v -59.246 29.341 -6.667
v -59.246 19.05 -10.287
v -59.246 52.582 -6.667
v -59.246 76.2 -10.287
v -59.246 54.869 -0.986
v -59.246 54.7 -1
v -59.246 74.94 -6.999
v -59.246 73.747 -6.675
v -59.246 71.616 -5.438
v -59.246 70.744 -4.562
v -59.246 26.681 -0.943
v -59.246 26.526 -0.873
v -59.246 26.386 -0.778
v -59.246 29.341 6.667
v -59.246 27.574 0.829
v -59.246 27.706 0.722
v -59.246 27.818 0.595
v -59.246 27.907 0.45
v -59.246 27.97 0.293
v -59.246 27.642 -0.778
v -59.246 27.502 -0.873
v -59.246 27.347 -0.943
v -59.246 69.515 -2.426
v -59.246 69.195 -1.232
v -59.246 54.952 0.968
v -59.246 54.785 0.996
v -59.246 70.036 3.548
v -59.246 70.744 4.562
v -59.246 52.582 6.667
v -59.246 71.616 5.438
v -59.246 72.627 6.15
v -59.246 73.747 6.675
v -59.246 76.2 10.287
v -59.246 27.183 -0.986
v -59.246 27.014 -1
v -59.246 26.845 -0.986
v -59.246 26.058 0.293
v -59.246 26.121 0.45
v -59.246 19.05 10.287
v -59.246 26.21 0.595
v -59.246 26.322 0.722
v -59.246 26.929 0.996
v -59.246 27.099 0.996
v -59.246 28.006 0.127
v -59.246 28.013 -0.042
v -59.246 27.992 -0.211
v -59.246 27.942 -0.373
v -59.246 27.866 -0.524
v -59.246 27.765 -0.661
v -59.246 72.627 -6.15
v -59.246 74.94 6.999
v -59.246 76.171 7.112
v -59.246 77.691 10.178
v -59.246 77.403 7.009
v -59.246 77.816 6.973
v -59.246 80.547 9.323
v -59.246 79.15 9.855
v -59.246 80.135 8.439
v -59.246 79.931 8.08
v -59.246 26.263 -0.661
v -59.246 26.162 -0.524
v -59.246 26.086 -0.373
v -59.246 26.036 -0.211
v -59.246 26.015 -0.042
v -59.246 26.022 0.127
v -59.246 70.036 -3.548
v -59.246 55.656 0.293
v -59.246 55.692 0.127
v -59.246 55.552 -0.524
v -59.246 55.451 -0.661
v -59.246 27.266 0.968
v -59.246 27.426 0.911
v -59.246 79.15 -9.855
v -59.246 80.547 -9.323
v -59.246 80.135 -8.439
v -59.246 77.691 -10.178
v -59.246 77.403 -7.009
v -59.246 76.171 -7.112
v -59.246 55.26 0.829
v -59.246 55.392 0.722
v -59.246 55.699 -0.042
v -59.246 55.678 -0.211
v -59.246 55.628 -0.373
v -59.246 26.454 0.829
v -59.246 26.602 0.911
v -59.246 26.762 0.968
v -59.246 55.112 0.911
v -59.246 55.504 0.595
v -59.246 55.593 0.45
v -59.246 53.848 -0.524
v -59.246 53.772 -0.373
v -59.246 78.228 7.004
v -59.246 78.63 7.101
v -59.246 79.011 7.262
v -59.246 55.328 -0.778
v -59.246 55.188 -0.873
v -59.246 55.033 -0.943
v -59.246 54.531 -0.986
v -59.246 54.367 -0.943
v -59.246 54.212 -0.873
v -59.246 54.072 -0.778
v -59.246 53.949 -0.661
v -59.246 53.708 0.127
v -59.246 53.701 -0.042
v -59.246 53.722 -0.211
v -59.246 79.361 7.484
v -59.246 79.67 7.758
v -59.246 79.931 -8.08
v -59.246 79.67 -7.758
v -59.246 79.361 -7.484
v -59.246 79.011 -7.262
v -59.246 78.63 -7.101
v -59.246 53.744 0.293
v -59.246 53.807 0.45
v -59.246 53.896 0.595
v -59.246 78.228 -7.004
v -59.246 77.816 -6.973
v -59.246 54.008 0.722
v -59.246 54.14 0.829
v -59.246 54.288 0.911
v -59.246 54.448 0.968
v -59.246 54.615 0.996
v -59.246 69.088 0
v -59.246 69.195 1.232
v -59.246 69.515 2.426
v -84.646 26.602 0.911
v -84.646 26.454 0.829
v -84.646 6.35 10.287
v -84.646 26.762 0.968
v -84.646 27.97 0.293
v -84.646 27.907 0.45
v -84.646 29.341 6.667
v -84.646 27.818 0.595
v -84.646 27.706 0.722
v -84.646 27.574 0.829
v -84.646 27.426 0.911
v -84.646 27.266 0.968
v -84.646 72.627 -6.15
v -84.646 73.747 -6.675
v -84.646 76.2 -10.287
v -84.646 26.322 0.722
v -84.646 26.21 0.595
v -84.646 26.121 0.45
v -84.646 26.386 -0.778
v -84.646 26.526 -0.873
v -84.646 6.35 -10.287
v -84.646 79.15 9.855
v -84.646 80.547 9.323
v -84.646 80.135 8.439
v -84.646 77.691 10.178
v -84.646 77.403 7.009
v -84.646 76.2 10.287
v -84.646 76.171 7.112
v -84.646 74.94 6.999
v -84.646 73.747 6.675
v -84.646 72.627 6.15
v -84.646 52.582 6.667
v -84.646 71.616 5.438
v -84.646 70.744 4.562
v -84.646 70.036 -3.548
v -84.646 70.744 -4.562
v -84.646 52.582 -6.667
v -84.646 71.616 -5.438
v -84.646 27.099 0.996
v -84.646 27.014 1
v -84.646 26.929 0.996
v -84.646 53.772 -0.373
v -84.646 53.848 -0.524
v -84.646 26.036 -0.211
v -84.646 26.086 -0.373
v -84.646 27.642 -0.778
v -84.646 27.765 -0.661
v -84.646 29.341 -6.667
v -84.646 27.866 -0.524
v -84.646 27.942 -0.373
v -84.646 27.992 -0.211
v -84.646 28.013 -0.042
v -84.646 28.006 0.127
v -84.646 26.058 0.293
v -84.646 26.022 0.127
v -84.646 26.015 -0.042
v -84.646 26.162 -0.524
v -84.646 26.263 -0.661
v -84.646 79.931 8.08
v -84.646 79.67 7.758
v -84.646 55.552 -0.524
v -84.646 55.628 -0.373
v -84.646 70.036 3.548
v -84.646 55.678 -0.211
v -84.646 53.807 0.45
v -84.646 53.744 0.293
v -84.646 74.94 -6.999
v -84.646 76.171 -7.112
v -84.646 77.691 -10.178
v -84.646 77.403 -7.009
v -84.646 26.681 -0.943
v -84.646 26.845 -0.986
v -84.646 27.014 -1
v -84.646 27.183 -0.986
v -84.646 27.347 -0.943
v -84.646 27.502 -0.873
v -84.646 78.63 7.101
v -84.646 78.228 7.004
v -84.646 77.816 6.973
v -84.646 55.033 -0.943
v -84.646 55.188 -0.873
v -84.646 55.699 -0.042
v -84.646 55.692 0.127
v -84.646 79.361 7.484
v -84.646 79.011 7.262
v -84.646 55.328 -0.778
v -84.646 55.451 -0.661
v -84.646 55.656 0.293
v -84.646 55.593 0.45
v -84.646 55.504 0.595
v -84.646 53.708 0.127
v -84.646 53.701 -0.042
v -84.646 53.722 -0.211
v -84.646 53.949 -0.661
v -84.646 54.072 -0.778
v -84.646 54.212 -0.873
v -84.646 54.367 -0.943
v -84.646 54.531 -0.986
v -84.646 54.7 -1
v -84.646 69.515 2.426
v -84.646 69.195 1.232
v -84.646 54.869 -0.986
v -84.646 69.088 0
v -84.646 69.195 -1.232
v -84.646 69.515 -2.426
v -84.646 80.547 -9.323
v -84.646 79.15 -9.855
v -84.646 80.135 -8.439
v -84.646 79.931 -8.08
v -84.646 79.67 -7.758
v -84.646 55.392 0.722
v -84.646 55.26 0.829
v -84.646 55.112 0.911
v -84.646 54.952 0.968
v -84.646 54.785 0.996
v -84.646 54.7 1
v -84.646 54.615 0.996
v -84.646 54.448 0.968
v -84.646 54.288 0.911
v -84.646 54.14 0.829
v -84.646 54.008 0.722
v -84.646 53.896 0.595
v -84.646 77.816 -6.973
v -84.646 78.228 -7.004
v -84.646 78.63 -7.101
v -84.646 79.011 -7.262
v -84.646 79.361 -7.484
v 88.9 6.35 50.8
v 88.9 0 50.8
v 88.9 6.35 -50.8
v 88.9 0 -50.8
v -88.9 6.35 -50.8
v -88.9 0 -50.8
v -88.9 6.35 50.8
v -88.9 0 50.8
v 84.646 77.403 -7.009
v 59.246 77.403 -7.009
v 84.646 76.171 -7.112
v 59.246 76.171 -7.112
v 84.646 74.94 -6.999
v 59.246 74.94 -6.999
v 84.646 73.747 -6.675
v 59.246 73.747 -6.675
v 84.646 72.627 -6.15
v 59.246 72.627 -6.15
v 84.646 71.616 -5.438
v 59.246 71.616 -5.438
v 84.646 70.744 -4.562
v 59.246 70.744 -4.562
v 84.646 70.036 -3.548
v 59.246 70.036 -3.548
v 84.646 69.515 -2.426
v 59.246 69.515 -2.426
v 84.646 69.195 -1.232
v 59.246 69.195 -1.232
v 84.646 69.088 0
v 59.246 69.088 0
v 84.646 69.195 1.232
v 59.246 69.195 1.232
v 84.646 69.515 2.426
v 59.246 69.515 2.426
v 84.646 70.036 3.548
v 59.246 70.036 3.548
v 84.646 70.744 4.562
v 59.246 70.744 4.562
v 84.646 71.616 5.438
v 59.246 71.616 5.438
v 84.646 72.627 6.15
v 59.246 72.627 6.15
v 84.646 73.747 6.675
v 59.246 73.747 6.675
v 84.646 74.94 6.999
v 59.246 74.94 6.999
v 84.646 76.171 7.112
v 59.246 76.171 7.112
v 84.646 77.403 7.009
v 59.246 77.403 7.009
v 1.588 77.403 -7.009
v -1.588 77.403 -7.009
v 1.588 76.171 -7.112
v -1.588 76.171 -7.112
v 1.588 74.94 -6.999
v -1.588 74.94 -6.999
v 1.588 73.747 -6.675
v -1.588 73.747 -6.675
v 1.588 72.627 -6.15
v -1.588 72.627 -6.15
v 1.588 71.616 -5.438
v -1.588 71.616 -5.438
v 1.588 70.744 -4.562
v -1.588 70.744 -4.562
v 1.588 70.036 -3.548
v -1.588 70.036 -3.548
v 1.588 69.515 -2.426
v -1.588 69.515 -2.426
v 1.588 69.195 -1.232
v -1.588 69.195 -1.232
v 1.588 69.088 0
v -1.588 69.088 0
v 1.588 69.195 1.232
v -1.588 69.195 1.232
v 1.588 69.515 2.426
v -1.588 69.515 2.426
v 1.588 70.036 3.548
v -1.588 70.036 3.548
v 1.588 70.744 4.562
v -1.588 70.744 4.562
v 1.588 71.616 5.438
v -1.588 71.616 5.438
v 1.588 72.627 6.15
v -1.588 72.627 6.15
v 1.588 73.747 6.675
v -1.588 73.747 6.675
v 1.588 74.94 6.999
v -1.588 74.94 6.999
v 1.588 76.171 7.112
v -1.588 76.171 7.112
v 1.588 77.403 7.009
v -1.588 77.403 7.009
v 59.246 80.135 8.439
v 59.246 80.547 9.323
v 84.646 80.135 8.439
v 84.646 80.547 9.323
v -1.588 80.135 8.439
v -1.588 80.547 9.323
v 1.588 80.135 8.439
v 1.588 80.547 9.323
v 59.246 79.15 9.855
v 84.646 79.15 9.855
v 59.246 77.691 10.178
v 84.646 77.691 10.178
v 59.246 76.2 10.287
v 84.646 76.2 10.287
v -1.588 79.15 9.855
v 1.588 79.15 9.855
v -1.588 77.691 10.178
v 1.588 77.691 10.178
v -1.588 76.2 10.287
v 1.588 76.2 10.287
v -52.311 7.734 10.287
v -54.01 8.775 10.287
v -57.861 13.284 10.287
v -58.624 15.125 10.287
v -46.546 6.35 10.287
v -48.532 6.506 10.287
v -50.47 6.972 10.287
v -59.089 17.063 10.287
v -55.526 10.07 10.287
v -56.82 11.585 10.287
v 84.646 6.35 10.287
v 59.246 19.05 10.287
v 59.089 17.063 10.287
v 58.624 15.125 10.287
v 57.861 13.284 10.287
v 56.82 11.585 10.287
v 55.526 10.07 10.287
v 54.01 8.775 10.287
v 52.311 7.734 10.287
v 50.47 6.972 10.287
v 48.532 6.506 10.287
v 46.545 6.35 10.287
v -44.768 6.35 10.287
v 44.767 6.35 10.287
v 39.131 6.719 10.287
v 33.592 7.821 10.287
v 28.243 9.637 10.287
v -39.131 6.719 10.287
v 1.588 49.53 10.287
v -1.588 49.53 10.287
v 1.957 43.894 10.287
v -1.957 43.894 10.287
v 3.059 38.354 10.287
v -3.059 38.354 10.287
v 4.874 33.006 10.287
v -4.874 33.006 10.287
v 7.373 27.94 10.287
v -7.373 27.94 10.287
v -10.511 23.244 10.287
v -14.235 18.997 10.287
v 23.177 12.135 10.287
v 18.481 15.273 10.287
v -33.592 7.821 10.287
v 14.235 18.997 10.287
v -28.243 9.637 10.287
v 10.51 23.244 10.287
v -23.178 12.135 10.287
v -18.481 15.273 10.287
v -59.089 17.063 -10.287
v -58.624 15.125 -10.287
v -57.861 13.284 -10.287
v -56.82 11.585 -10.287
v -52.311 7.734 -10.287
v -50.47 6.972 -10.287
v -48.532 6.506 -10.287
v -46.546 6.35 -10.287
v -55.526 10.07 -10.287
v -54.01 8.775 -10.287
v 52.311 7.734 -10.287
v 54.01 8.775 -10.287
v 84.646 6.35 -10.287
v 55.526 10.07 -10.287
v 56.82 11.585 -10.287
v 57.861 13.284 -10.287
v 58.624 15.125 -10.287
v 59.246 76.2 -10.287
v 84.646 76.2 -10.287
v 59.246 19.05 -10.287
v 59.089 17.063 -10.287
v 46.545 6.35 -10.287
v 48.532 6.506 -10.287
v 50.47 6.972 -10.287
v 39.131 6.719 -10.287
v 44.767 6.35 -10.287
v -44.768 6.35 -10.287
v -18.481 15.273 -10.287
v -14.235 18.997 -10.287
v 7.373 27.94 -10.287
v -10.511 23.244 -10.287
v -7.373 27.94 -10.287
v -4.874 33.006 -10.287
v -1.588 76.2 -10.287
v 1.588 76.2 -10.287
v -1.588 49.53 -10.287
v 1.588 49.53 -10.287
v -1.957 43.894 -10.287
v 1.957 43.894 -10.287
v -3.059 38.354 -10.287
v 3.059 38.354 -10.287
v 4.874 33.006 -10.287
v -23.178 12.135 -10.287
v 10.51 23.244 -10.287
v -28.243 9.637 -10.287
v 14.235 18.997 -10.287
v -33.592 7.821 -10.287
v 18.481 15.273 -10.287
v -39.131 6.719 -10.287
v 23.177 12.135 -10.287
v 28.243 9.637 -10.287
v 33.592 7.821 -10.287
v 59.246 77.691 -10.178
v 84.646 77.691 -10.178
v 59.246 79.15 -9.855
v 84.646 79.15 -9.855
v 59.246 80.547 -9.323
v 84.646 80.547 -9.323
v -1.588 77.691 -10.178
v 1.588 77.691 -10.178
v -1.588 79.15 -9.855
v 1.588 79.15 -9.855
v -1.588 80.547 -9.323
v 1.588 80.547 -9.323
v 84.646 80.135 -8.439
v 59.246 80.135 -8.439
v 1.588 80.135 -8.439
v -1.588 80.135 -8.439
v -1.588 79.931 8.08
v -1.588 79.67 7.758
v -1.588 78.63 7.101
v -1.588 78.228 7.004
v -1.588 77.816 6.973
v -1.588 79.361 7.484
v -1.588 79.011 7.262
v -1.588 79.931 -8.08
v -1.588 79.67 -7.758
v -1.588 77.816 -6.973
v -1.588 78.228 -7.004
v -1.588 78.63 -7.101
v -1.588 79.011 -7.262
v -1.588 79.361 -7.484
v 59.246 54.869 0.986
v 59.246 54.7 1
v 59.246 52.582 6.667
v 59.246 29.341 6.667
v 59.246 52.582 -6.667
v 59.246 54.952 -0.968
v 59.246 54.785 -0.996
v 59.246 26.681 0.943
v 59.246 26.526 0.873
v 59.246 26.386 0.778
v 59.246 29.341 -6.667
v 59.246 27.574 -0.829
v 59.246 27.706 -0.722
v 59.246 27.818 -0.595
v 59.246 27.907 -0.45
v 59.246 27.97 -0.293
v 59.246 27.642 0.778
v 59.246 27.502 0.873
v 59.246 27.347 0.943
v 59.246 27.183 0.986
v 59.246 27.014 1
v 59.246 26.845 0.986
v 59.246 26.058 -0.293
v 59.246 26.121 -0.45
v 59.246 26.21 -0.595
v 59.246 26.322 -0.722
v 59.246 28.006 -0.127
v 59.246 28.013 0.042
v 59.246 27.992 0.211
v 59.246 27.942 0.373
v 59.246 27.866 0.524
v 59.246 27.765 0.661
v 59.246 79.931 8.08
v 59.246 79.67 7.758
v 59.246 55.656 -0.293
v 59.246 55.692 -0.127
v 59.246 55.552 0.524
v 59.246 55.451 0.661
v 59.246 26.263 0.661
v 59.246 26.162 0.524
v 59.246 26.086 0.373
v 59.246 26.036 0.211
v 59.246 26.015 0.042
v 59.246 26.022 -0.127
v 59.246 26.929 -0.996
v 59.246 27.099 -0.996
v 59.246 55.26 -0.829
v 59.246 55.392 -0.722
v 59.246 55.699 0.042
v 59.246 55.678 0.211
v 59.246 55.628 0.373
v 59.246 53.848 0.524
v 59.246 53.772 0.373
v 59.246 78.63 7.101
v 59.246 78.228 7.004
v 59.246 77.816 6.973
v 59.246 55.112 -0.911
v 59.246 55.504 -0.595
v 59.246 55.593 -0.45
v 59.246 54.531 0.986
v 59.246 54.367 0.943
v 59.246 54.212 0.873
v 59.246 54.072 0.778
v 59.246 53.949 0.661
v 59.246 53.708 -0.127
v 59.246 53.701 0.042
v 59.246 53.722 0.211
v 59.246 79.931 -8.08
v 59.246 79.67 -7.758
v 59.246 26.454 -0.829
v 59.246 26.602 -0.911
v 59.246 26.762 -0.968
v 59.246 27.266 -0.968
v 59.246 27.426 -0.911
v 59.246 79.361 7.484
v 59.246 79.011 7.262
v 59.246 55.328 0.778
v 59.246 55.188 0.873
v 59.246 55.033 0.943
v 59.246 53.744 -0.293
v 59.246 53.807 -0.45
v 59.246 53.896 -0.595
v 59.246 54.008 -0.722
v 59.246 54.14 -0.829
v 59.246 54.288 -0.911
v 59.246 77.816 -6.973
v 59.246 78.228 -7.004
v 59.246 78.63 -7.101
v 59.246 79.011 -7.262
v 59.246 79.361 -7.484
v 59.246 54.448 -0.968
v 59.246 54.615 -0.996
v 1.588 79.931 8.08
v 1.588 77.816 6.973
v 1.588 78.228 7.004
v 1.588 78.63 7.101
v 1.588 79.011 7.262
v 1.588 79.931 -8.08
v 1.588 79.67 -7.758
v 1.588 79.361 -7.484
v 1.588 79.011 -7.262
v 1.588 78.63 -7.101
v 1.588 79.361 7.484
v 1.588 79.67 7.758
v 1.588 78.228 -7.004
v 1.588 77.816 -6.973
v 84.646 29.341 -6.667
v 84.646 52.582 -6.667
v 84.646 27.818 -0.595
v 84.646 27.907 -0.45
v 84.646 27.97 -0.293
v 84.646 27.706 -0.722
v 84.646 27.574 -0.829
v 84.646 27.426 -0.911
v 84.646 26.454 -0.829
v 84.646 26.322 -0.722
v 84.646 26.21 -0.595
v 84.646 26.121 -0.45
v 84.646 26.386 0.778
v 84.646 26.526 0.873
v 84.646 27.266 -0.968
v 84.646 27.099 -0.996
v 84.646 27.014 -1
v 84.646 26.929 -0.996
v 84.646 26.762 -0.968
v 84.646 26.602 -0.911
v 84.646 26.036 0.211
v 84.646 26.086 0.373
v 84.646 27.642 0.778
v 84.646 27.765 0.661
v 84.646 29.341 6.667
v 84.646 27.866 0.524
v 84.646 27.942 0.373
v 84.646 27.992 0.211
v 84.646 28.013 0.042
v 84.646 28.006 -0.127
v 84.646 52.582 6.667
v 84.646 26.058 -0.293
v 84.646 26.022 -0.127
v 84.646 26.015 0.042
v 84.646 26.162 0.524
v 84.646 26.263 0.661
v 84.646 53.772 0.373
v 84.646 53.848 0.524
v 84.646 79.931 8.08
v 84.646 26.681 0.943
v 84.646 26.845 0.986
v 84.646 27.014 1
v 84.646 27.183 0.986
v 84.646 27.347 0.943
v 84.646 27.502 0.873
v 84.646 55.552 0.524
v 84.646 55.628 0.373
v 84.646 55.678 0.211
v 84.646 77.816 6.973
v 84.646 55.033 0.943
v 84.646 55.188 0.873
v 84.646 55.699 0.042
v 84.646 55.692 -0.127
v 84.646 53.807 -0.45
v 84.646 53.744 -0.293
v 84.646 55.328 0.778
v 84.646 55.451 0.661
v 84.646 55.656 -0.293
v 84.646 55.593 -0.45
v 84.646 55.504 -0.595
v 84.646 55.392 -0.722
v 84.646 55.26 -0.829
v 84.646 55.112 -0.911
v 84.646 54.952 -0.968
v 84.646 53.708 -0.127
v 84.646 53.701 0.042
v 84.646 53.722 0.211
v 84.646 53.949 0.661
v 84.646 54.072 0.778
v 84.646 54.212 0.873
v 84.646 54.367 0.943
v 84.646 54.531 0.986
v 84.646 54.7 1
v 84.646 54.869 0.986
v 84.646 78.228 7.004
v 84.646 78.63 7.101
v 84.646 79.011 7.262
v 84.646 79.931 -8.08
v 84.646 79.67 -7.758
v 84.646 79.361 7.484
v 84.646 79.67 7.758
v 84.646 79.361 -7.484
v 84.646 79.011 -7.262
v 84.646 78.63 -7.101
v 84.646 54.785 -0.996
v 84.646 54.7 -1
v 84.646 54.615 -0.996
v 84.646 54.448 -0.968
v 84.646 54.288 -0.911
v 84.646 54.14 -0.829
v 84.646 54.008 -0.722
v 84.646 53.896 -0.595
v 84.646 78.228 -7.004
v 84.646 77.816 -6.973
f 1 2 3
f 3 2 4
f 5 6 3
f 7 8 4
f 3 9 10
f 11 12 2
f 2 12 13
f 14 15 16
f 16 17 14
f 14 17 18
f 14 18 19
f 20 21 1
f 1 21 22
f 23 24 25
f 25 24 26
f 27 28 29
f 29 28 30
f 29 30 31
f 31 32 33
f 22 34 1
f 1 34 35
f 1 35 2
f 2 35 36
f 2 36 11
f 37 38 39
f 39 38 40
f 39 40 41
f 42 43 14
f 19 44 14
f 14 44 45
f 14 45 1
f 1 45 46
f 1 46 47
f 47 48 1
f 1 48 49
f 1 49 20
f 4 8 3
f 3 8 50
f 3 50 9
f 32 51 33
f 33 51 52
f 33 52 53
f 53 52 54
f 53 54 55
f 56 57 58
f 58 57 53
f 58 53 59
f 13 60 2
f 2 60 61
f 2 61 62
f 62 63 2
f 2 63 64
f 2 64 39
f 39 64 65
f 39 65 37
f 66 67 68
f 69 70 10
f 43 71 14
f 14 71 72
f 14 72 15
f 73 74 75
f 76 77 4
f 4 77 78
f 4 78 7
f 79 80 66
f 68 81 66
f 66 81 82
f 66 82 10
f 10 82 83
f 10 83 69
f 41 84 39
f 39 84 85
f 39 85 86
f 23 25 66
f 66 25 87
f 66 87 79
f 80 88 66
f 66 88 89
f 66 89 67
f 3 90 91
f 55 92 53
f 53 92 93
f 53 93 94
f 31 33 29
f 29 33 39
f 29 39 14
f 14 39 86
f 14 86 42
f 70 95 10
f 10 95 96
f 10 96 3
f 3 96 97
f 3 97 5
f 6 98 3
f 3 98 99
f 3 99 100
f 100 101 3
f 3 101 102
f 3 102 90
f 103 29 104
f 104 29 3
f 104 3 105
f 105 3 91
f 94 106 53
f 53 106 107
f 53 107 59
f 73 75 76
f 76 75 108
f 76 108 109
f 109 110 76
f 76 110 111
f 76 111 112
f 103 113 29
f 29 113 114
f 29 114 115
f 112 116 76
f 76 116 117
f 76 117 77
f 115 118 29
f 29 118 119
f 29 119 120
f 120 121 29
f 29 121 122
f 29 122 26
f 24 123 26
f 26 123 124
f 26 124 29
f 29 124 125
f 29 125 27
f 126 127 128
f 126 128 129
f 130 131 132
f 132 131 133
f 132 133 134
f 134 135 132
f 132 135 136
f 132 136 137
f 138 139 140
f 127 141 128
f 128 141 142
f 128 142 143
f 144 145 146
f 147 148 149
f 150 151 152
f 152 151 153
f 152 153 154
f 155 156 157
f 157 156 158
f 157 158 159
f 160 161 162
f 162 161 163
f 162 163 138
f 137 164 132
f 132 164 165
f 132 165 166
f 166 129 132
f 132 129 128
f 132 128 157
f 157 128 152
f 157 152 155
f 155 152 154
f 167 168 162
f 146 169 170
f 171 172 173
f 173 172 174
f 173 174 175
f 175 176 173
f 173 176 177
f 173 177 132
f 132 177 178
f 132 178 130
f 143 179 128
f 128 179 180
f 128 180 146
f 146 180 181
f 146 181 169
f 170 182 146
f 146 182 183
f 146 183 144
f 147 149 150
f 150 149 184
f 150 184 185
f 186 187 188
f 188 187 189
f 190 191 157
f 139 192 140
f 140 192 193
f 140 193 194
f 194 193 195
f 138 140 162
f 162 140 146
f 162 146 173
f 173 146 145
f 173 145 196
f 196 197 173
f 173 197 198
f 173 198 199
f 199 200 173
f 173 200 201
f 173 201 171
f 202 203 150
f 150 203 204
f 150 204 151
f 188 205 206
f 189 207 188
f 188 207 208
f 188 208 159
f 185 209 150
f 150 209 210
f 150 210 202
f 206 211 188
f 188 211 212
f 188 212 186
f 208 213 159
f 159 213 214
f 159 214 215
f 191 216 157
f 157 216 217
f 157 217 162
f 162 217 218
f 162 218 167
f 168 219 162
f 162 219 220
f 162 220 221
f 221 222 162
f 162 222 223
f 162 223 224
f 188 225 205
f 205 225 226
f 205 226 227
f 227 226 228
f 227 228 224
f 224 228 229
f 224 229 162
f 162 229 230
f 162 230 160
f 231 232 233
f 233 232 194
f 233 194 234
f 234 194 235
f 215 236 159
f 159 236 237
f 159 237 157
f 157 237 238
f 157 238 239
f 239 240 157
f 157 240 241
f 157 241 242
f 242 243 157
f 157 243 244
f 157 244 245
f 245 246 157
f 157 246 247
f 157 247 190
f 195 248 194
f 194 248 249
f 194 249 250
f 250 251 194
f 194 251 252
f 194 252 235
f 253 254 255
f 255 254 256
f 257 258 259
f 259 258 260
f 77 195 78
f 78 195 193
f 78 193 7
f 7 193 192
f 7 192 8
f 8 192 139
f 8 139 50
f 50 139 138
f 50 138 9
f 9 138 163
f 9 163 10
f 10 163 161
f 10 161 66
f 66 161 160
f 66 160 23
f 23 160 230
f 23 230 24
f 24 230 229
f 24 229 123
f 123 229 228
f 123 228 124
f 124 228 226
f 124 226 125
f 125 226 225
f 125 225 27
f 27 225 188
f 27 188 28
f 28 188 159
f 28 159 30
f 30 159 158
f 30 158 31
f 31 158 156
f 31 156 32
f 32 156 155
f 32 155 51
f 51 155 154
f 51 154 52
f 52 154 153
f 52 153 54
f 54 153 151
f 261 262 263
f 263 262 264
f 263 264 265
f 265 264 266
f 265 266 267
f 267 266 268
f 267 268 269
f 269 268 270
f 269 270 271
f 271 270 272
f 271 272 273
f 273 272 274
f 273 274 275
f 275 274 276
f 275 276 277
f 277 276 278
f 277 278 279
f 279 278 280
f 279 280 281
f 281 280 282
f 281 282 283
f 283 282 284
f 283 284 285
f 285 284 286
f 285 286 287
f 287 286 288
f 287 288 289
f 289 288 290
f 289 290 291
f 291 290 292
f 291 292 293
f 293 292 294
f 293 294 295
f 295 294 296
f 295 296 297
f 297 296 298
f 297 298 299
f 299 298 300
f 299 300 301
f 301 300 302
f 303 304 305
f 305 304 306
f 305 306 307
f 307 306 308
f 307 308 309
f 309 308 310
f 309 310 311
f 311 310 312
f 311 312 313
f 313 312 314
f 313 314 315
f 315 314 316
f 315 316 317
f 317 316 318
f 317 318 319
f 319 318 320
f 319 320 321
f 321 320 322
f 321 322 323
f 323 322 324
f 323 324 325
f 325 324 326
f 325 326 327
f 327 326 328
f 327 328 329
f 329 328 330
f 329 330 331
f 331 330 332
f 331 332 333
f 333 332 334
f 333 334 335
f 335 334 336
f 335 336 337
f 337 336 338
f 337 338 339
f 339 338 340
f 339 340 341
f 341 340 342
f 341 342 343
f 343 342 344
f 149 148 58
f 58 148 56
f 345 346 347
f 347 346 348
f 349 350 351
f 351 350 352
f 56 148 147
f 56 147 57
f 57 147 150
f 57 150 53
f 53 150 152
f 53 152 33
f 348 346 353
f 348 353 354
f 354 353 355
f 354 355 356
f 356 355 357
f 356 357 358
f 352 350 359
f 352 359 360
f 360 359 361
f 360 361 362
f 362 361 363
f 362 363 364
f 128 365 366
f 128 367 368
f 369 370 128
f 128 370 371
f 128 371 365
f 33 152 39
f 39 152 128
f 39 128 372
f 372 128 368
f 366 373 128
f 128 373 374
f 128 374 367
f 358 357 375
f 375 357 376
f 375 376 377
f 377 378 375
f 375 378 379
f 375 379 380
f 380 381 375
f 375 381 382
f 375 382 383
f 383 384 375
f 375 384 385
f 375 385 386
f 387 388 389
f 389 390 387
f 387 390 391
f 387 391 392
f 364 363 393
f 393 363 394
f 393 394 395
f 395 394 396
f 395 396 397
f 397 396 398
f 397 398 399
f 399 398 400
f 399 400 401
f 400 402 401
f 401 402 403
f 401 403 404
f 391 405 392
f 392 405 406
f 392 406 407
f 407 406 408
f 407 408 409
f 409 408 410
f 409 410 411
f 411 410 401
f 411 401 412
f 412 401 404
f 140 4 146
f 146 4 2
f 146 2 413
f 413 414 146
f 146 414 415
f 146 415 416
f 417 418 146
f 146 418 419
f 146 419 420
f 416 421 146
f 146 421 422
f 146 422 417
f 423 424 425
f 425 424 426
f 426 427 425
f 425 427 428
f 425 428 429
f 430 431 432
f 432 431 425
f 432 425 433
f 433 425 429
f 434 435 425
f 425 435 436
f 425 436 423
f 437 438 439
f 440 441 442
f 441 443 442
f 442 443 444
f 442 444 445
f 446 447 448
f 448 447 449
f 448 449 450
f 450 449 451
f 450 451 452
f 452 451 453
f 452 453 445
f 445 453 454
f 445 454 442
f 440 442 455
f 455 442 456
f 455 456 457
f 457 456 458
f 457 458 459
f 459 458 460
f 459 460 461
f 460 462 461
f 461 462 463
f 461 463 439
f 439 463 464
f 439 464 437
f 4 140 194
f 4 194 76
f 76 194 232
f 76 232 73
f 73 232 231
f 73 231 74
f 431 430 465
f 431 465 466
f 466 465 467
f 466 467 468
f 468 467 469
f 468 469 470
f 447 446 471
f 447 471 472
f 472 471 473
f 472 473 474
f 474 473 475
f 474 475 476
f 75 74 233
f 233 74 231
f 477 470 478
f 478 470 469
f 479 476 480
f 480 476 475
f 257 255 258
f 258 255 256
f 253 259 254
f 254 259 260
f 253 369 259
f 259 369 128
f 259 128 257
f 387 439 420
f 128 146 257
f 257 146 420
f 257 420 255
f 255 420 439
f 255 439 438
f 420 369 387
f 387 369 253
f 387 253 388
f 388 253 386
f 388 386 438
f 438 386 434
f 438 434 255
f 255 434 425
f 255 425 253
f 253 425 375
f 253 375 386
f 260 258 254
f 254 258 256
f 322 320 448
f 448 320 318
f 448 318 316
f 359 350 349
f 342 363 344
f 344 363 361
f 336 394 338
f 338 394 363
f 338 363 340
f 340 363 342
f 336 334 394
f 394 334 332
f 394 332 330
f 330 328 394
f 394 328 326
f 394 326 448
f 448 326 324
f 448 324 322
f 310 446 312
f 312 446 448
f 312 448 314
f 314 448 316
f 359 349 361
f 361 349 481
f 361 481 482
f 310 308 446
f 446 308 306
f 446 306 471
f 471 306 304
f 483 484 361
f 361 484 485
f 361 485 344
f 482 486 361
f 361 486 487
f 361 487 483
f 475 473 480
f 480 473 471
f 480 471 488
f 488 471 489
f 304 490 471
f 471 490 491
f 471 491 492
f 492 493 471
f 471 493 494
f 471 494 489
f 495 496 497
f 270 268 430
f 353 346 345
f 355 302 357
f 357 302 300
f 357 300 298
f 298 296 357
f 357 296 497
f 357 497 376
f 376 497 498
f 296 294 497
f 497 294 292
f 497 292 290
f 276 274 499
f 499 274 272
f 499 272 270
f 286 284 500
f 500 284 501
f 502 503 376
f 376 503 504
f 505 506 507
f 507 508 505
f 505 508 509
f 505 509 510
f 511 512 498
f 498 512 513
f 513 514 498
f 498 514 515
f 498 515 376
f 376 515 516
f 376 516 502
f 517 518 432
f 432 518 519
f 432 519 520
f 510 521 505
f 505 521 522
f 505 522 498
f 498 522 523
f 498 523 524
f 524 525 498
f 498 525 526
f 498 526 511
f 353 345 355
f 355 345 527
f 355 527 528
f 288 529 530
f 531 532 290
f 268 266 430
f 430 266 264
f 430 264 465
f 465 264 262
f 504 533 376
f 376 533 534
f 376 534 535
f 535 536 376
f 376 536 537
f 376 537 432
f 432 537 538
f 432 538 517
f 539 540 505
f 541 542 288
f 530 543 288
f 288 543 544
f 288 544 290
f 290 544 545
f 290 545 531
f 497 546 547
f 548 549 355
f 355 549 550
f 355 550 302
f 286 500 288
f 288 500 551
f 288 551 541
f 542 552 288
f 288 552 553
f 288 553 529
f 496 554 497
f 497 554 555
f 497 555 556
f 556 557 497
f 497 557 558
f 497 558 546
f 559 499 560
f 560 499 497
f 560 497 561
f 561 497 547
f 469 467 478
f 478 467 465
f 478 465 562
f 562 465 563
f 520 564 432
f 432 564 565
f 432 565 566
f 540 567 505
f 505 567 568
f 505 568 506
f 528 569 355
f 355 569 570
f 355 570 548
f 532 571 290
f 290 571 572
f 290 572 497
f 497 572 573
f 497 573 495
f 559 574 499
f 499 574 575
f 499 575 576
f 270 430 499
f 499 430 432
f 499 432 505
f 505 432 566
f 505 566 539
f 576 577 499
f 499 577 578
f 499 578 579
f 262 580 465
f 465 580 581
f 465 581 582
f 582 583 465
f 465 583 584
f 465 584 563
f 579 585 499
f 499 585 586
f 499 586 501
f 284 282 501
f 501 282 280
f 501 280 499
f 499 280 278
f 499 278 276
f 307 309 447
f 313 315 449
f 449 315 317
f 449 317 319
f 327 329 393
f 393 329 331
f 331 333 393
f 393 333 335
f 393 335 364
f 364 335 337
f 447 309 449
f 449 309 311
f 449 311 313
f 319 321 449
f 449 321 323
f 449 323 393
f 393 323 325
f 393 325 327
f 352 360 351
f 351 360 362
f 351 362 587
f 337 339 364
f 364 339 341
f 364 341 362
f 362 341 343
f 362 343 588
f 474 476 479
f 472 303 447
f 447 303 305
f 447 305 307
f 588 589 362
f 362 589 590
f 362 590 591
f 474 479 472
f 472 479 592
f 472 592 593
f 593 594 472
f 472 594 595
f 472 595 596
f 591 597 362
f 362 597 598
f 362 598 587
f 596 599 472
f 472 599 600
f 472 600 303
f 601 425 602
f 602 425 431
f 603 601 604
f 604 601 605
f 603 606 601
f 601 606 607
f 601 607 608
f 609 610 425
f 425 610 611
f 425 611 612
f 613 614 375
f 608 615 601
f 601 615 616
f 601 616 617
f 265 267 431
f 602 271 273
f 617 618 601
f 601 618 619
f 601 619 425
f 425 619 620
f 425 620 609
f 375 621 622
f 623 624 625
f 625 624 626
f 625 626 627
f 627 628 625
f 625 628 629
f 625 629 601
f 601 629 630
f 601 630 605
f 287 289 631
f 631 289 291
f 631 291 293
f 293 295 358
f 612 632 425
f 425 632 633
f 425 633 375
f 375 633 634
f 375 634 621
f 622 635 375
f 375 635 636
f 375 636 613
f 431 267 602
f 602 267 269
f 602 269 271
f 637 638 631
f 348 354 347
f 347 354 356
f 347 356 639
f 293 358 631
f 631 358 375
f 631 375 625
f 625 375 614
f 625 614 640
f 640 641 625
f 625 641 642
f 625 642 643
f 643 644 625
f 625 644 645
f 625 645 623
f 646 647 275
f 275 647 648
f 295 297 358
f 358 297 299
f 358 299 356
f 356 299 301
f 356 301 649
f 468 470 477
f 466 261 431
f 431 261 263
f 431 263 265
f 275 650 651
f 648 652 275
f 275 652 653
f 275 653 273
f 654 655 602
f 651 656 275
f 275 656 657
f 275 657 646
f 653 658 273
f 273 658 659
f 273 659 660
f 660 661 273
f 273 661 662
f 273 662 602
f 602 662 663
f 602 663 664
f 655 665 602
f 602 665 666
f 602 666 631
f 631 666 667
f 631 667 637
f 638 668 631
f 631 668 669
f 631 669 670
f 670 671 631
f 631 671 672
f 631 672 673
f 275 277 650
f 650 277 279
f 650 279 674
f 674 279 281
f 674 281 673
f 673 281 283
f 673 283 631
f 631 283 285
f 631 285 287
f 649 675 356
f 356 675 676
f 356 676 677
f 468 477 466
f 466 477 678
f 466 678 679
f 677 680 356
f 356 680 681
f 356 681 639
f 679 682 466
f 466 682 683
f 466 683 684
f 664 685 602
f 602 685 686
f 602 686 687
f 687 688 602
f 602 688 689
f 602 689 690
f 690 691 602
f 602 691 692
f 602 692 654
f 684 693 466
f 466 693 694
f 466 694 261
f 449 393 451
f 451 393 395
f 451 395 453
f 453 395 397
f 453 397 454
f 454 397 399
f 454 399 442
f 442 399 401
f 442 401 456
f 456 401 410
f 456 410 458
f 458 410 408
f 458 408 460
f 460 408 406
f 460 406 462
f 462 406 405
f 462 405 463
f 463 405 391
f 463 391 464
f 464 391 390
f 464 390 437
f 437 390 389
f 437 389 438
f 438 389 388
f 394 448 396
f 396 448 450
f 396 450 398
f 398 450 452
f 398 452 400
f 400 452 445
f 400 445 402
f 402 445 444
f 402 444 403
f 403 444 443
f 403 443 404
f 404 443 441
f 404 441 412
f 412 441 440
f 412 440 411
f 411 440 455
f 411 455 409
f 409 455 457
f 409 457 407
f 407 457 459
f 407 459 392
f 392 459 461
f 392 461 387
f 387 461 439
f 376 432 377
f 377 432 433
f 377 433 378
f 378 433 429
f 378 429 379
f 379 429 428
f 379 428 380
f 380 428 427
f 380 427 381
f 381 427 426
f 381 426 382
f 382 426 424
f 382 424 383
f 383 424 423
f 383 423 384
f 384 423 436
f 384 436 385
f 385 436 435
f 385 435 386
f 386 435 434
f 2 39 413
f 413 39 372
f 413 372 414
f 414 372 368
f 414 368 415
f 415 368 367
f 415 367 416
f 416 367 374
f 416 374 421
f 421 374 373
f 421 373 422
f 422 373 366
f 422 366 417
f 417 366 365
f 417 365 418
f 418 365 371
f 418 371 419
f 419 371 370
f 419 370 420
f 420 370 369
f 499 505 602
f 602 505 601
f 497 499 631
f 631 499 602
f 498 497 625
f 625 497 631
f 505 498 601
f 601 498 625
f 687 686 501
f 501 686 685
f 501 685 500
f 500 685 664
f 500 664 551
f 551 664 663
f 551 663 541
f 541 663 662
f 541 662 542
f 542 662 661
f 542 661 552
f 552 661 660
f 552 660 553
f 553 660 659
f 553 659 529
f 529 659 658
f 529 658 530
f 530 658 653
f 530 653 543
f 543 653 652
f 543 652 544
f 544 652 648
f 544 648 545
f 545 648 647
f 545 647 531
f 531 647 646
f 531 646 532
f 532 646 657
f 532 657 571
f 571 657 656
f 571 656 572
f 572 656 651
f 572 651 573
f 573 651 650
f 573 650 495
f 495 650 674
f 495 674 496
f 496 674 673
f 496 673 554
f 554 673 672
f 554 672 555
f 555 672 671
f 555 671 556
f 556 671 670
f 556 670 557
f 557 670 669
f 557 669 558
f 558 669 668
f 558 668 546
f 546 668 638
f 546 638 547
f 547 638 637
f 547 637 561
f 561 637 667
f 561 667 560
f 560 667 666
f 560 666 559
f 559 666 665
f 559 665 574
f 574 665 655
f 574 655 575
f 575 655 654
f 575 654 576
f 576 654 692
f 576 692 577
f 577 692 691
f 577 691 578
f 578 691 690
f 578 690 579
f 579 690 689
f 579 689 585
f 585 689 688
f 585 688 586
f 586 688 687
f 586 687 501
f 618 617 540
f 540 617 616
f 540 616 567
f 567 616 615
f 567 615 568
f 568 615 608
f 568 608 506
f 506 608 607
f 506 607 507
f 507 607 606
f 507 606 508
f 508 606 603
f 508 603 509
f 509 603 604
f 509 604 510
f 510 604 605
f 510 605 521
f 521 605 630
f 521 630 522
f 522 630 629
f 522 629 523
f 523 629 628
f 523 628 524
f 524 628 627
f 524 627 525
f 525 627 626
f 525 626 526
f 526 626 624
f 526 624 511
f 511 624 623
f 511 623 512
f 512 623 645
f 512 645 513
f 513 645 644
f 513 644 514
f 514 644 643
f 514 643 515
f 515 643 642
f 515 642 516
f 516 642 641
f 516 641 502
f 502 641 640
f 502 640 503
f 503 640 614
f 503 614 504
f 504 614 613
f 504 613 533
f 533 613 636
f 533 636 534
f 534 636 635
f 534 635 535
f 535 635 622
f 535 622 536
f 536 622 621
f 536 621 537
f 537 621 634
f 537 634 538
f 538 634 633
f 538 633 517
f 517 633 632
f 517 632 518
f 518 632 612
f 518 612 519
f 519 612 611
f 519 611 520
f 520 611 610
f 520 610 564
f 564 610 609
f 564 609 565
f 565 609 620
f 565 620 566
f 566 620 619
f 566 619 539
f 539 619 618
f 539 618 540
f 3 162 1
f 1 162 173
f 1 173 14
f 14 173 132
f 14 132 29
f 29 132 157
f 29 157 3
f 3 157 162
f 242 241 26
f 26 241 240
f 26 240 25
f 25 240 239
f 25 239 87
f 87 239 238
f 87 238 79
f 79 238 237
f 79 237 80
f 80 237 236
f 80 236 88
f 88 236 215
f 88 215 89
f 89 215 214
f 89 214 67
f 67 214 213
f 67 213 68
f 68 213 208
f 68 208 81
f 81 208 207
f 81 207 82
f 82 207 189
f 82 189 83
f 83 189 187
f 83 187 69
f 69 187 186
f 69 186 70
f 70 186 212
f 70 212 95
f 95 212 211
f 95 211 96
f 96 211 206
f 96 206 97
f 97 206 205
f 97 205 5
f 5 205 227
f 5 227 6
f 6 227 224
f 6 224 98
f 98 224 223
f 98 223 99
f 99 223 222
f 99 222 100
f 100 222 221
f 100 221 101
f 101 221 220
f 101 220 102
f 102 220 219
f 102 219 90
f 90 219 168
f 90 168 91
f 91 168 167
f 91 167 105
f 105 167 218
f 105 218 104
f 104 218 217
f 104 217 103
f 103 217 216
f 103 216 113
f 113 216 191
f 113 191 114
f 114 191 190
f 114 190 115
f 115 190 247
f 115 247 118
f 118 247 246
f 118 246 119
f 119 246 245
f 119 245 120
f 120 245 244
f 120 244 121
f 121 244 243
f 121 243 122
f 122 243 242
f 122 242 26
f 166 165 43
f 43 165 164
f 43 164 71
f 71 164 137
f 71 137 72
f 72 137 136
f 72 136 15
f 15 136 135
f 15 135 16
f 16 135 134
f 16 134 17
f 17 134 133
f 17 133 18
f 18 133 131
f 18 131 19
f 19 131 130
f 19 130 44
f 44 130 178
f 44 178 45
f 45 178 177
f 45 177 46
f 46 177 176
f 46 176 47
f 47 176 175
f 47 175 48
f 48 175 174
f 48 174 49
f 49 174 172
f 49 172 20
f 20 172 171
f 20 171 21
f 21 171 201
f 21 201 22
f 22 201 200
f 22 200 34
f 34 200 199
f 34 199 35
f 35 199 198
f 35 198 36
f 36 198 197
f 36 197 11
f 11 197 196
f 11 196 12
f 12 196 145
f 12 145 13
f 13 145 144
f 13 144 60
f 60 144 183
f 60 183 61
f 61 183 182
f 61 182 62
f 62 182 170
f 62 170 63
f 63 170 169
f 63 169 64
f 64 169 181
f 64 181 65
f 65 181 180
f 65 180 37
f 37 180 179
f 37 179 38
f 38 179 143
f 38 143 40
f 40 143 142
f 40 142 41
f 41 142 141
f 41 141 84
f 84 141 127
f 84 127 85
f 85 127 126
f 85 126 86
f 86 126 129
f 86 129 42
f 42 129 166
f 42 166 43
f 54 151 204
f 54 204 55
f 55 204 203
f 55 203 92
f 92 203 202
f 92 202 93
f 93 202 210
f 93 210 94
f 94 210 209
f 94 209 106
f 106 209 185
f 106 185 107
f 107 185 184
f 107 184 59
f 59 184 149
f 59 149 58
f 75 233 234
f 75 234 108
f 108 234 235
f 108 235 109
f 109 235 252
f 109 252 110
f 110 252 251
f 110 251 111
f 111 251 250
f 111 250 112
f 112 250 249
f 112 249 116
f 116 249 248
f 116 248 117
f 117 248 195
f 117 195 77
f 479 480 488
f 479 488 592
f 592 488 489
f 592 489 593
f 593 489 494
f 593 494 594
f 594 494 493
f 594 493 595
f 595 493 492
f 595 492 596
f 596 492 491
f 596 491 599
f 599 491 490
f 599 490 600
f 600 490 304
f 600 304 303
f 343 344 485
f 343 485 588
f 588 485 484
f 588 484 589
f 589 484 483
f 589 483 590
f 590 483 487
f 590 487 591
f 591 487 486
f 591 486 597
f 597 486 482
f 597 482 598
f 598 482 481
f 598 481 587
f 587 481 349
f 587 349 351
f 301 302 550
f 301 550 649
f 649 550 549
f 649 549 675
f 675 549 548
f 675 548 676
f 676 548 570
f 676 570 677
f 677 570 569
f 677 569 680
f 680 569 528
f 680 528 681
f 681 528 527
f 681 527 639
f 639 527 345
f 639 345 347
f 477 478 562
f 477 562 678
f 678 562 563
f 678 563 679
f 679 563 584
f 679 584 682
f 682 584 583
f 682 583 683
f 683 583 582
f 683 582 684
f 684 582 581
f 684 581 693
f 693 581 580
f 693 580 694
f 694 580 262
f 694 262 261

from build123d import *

# Parameters (mm, degrees)
SKETCH1_W           = 177.8
SKETCH1_H           = 101.6
BOSS_EXTRUDE1_DEPTH = 6.35
BOSS_EXTRUDE2_DEPTH = 177.8
SKETCH3_W           = 57.658
SKETCH3_H           = 101.6
SKETCH3_W_2         = 4.2545
CUT_EXTRUDE1_DEPTH  = 127.448072965
FILLET1_R           = 43.18
FILLET2_R           = 12.7
SKETCH5_R           = 1
SKETCH5_W           = 13.335
SKETCH5_H           = 23.241
CUT_EXTRUDE2_DEPTH  = 177.112534328
CUT_EXTRUDE3_START  = 118.491
SKETCH5_2_R         = 1
SKETCH5_2_W         = 13.335
SKETCH5_2_H         = 23.241
CUT_EXTRUDE3_DEPTH  = 58.621534328
FILLET4_R           = 2.54


with BuildPart() as part:
    # Sketch1 → Boss-Extrude1 (new body)
    with BuildSketch(Plane(origin=(0, 0, 0), x_dir=(1, 0, 0), z_dir=(0, 1, 0))):
        Rectangle(SKETCH1_W, SKETCH1_H)
    extrude(amount=BOSS_EXTRUDE1_DEPTH)

    # Sketch2 → Boss-Extrude2 (add)
    with BuildSketch(Plane.ZY.offset(88.9)):
        with BuildLine():
            Line((0, 69.088), (0, 6.35))
            Line((0, 6.35), (10.287, 6.35))
            Line((10.287, 6.35), (10.287, 76.2))
            ThreePointArc((10.287, 76.2), (10.043157025, 78.426514309), (9.323188205, 80.547474059))
            Line((9.323188205, 80.547474059), (6.445660981, 79.205661077))
            ThreePointArc((6.445660981, 79.205661077), (5.998199963, 72.378725185), (0, 69.088))
        make_face()
        with BuildLine():
            Line((-10.287, 76.2), (-10.287, 6.35))
            Line((-10.287, 6.35), (0, 6.35))
            Line((0, 6.35), (0, 69.088))
            ThreePointArc((0, 69.088), (-5.998199963, 72.378725185), (-6.445660981, 79.205661077))
            Line((-6.445660981, 79.205661077), (-9.323188205, 80.547474059))
            ThreePointArc((-9.323188205, 80.547474059), (-10.043157025, 78.426514309), (-10.287, 76.2))
        make_face()
    extrude(amount=-BOSS_EXTRUDE2_DEPTH)

    # Sketch3 → Cut-Extrude1 (cut, through all)
    with BuildSketch(Plane(origin=(0, 6.35, 0), x_dir=(1, 0, 0), z_dir=(0, 1, 0))):
        with Locations((-30.4165, 0)):
            Rectangle(SKETCH3_W, SKETCH3_H)
        with Locations((30.4165, 0)):
            Rectangle(SKETCH3_W, SKETCH3_H)
        with Locations((86.77275, 0)):
            Rectangle(SKETCH3_W_2, SKETCH3_H)
        with Locations((-86.77275, 0)):
            Rectangle(SKETCH3_W_2, SKETCH3_H)
    extrude(amount=CUT_EXTRUDE1_DEPTH, mode=Mode.SUBTRACT)

    # Fillet1
    fillet1_edges = [part.edges().sort_by_distance(p)[0] for p in [
        (1.5875, 6.35, 0),
        (-1.5875, 6.35, 0),
    ]]
    fillet(fillet1_edges, radius=FILLET1_R)

    # Fillet2
    fillet2_edges = [part.edges().sort_by_distance(p)[0] for p in [
        (59.2455, 6.35, 0),
        (-59.2455, 6.35, 0),
    ]]
    fillet(fillet2_edges, radius=FILLET2_R)

    # Sketch5 → Cut-Extrude2 (cut, through all)
    with BuildSketch(Plane.ZY.offset(-59.2455)):
        with Locations((0, 54.7)):
            Circle(SKETCH5_R)
        with Locations((0, 27.014)):
            Circle(SKETCH5_R)
        with Locations((0, 40.9615)):
            Rectangle(SKETCH5_W, SKETCH5_H)
    extrude(amount=-CUT_EXTRUDE2_DEPTH, mode=Mode.SUBTRACT)

    # Sketch5<2> → Cut-Extrude3 (cut, through all)
    with BuildSketch(Plane.ZY.offset(-59.2455).offset(CUT_EXTRUDE3_START)):
        with Locations((0, 54.7)):
            Circle(SKETCH5_2_R)
        with Locations((0, 27.014)):
            Circle(SKETCH5_2_R)
        with Locations((0, 40.9615)):
            Rectangle(SKETCH5_2_W, SKETCH5_2_H)
    extrude(amount=CUT_EXTRUDE3_DEPTH, mode=Mode.SUBTRACT)

    # Fillet4
    fillet4_edges = [part.edges().sort_by_distance(p)[0] for p in [
        (71.9455, 79.205661077, -6.445660981),
        (0, 79.205661077, -6.445660981),
        (-71.9455, 79.205661077, -6.445660981),
        (71.9455, 79.205661077, 6.445660981),
        (0, 79.205661077, 6.445660981),
        (-71.9455, 79.205661077, 6.445660981),
    ]]
    fillet(fillet4_edges, radius=FILLET4_R)


solid = part.part
